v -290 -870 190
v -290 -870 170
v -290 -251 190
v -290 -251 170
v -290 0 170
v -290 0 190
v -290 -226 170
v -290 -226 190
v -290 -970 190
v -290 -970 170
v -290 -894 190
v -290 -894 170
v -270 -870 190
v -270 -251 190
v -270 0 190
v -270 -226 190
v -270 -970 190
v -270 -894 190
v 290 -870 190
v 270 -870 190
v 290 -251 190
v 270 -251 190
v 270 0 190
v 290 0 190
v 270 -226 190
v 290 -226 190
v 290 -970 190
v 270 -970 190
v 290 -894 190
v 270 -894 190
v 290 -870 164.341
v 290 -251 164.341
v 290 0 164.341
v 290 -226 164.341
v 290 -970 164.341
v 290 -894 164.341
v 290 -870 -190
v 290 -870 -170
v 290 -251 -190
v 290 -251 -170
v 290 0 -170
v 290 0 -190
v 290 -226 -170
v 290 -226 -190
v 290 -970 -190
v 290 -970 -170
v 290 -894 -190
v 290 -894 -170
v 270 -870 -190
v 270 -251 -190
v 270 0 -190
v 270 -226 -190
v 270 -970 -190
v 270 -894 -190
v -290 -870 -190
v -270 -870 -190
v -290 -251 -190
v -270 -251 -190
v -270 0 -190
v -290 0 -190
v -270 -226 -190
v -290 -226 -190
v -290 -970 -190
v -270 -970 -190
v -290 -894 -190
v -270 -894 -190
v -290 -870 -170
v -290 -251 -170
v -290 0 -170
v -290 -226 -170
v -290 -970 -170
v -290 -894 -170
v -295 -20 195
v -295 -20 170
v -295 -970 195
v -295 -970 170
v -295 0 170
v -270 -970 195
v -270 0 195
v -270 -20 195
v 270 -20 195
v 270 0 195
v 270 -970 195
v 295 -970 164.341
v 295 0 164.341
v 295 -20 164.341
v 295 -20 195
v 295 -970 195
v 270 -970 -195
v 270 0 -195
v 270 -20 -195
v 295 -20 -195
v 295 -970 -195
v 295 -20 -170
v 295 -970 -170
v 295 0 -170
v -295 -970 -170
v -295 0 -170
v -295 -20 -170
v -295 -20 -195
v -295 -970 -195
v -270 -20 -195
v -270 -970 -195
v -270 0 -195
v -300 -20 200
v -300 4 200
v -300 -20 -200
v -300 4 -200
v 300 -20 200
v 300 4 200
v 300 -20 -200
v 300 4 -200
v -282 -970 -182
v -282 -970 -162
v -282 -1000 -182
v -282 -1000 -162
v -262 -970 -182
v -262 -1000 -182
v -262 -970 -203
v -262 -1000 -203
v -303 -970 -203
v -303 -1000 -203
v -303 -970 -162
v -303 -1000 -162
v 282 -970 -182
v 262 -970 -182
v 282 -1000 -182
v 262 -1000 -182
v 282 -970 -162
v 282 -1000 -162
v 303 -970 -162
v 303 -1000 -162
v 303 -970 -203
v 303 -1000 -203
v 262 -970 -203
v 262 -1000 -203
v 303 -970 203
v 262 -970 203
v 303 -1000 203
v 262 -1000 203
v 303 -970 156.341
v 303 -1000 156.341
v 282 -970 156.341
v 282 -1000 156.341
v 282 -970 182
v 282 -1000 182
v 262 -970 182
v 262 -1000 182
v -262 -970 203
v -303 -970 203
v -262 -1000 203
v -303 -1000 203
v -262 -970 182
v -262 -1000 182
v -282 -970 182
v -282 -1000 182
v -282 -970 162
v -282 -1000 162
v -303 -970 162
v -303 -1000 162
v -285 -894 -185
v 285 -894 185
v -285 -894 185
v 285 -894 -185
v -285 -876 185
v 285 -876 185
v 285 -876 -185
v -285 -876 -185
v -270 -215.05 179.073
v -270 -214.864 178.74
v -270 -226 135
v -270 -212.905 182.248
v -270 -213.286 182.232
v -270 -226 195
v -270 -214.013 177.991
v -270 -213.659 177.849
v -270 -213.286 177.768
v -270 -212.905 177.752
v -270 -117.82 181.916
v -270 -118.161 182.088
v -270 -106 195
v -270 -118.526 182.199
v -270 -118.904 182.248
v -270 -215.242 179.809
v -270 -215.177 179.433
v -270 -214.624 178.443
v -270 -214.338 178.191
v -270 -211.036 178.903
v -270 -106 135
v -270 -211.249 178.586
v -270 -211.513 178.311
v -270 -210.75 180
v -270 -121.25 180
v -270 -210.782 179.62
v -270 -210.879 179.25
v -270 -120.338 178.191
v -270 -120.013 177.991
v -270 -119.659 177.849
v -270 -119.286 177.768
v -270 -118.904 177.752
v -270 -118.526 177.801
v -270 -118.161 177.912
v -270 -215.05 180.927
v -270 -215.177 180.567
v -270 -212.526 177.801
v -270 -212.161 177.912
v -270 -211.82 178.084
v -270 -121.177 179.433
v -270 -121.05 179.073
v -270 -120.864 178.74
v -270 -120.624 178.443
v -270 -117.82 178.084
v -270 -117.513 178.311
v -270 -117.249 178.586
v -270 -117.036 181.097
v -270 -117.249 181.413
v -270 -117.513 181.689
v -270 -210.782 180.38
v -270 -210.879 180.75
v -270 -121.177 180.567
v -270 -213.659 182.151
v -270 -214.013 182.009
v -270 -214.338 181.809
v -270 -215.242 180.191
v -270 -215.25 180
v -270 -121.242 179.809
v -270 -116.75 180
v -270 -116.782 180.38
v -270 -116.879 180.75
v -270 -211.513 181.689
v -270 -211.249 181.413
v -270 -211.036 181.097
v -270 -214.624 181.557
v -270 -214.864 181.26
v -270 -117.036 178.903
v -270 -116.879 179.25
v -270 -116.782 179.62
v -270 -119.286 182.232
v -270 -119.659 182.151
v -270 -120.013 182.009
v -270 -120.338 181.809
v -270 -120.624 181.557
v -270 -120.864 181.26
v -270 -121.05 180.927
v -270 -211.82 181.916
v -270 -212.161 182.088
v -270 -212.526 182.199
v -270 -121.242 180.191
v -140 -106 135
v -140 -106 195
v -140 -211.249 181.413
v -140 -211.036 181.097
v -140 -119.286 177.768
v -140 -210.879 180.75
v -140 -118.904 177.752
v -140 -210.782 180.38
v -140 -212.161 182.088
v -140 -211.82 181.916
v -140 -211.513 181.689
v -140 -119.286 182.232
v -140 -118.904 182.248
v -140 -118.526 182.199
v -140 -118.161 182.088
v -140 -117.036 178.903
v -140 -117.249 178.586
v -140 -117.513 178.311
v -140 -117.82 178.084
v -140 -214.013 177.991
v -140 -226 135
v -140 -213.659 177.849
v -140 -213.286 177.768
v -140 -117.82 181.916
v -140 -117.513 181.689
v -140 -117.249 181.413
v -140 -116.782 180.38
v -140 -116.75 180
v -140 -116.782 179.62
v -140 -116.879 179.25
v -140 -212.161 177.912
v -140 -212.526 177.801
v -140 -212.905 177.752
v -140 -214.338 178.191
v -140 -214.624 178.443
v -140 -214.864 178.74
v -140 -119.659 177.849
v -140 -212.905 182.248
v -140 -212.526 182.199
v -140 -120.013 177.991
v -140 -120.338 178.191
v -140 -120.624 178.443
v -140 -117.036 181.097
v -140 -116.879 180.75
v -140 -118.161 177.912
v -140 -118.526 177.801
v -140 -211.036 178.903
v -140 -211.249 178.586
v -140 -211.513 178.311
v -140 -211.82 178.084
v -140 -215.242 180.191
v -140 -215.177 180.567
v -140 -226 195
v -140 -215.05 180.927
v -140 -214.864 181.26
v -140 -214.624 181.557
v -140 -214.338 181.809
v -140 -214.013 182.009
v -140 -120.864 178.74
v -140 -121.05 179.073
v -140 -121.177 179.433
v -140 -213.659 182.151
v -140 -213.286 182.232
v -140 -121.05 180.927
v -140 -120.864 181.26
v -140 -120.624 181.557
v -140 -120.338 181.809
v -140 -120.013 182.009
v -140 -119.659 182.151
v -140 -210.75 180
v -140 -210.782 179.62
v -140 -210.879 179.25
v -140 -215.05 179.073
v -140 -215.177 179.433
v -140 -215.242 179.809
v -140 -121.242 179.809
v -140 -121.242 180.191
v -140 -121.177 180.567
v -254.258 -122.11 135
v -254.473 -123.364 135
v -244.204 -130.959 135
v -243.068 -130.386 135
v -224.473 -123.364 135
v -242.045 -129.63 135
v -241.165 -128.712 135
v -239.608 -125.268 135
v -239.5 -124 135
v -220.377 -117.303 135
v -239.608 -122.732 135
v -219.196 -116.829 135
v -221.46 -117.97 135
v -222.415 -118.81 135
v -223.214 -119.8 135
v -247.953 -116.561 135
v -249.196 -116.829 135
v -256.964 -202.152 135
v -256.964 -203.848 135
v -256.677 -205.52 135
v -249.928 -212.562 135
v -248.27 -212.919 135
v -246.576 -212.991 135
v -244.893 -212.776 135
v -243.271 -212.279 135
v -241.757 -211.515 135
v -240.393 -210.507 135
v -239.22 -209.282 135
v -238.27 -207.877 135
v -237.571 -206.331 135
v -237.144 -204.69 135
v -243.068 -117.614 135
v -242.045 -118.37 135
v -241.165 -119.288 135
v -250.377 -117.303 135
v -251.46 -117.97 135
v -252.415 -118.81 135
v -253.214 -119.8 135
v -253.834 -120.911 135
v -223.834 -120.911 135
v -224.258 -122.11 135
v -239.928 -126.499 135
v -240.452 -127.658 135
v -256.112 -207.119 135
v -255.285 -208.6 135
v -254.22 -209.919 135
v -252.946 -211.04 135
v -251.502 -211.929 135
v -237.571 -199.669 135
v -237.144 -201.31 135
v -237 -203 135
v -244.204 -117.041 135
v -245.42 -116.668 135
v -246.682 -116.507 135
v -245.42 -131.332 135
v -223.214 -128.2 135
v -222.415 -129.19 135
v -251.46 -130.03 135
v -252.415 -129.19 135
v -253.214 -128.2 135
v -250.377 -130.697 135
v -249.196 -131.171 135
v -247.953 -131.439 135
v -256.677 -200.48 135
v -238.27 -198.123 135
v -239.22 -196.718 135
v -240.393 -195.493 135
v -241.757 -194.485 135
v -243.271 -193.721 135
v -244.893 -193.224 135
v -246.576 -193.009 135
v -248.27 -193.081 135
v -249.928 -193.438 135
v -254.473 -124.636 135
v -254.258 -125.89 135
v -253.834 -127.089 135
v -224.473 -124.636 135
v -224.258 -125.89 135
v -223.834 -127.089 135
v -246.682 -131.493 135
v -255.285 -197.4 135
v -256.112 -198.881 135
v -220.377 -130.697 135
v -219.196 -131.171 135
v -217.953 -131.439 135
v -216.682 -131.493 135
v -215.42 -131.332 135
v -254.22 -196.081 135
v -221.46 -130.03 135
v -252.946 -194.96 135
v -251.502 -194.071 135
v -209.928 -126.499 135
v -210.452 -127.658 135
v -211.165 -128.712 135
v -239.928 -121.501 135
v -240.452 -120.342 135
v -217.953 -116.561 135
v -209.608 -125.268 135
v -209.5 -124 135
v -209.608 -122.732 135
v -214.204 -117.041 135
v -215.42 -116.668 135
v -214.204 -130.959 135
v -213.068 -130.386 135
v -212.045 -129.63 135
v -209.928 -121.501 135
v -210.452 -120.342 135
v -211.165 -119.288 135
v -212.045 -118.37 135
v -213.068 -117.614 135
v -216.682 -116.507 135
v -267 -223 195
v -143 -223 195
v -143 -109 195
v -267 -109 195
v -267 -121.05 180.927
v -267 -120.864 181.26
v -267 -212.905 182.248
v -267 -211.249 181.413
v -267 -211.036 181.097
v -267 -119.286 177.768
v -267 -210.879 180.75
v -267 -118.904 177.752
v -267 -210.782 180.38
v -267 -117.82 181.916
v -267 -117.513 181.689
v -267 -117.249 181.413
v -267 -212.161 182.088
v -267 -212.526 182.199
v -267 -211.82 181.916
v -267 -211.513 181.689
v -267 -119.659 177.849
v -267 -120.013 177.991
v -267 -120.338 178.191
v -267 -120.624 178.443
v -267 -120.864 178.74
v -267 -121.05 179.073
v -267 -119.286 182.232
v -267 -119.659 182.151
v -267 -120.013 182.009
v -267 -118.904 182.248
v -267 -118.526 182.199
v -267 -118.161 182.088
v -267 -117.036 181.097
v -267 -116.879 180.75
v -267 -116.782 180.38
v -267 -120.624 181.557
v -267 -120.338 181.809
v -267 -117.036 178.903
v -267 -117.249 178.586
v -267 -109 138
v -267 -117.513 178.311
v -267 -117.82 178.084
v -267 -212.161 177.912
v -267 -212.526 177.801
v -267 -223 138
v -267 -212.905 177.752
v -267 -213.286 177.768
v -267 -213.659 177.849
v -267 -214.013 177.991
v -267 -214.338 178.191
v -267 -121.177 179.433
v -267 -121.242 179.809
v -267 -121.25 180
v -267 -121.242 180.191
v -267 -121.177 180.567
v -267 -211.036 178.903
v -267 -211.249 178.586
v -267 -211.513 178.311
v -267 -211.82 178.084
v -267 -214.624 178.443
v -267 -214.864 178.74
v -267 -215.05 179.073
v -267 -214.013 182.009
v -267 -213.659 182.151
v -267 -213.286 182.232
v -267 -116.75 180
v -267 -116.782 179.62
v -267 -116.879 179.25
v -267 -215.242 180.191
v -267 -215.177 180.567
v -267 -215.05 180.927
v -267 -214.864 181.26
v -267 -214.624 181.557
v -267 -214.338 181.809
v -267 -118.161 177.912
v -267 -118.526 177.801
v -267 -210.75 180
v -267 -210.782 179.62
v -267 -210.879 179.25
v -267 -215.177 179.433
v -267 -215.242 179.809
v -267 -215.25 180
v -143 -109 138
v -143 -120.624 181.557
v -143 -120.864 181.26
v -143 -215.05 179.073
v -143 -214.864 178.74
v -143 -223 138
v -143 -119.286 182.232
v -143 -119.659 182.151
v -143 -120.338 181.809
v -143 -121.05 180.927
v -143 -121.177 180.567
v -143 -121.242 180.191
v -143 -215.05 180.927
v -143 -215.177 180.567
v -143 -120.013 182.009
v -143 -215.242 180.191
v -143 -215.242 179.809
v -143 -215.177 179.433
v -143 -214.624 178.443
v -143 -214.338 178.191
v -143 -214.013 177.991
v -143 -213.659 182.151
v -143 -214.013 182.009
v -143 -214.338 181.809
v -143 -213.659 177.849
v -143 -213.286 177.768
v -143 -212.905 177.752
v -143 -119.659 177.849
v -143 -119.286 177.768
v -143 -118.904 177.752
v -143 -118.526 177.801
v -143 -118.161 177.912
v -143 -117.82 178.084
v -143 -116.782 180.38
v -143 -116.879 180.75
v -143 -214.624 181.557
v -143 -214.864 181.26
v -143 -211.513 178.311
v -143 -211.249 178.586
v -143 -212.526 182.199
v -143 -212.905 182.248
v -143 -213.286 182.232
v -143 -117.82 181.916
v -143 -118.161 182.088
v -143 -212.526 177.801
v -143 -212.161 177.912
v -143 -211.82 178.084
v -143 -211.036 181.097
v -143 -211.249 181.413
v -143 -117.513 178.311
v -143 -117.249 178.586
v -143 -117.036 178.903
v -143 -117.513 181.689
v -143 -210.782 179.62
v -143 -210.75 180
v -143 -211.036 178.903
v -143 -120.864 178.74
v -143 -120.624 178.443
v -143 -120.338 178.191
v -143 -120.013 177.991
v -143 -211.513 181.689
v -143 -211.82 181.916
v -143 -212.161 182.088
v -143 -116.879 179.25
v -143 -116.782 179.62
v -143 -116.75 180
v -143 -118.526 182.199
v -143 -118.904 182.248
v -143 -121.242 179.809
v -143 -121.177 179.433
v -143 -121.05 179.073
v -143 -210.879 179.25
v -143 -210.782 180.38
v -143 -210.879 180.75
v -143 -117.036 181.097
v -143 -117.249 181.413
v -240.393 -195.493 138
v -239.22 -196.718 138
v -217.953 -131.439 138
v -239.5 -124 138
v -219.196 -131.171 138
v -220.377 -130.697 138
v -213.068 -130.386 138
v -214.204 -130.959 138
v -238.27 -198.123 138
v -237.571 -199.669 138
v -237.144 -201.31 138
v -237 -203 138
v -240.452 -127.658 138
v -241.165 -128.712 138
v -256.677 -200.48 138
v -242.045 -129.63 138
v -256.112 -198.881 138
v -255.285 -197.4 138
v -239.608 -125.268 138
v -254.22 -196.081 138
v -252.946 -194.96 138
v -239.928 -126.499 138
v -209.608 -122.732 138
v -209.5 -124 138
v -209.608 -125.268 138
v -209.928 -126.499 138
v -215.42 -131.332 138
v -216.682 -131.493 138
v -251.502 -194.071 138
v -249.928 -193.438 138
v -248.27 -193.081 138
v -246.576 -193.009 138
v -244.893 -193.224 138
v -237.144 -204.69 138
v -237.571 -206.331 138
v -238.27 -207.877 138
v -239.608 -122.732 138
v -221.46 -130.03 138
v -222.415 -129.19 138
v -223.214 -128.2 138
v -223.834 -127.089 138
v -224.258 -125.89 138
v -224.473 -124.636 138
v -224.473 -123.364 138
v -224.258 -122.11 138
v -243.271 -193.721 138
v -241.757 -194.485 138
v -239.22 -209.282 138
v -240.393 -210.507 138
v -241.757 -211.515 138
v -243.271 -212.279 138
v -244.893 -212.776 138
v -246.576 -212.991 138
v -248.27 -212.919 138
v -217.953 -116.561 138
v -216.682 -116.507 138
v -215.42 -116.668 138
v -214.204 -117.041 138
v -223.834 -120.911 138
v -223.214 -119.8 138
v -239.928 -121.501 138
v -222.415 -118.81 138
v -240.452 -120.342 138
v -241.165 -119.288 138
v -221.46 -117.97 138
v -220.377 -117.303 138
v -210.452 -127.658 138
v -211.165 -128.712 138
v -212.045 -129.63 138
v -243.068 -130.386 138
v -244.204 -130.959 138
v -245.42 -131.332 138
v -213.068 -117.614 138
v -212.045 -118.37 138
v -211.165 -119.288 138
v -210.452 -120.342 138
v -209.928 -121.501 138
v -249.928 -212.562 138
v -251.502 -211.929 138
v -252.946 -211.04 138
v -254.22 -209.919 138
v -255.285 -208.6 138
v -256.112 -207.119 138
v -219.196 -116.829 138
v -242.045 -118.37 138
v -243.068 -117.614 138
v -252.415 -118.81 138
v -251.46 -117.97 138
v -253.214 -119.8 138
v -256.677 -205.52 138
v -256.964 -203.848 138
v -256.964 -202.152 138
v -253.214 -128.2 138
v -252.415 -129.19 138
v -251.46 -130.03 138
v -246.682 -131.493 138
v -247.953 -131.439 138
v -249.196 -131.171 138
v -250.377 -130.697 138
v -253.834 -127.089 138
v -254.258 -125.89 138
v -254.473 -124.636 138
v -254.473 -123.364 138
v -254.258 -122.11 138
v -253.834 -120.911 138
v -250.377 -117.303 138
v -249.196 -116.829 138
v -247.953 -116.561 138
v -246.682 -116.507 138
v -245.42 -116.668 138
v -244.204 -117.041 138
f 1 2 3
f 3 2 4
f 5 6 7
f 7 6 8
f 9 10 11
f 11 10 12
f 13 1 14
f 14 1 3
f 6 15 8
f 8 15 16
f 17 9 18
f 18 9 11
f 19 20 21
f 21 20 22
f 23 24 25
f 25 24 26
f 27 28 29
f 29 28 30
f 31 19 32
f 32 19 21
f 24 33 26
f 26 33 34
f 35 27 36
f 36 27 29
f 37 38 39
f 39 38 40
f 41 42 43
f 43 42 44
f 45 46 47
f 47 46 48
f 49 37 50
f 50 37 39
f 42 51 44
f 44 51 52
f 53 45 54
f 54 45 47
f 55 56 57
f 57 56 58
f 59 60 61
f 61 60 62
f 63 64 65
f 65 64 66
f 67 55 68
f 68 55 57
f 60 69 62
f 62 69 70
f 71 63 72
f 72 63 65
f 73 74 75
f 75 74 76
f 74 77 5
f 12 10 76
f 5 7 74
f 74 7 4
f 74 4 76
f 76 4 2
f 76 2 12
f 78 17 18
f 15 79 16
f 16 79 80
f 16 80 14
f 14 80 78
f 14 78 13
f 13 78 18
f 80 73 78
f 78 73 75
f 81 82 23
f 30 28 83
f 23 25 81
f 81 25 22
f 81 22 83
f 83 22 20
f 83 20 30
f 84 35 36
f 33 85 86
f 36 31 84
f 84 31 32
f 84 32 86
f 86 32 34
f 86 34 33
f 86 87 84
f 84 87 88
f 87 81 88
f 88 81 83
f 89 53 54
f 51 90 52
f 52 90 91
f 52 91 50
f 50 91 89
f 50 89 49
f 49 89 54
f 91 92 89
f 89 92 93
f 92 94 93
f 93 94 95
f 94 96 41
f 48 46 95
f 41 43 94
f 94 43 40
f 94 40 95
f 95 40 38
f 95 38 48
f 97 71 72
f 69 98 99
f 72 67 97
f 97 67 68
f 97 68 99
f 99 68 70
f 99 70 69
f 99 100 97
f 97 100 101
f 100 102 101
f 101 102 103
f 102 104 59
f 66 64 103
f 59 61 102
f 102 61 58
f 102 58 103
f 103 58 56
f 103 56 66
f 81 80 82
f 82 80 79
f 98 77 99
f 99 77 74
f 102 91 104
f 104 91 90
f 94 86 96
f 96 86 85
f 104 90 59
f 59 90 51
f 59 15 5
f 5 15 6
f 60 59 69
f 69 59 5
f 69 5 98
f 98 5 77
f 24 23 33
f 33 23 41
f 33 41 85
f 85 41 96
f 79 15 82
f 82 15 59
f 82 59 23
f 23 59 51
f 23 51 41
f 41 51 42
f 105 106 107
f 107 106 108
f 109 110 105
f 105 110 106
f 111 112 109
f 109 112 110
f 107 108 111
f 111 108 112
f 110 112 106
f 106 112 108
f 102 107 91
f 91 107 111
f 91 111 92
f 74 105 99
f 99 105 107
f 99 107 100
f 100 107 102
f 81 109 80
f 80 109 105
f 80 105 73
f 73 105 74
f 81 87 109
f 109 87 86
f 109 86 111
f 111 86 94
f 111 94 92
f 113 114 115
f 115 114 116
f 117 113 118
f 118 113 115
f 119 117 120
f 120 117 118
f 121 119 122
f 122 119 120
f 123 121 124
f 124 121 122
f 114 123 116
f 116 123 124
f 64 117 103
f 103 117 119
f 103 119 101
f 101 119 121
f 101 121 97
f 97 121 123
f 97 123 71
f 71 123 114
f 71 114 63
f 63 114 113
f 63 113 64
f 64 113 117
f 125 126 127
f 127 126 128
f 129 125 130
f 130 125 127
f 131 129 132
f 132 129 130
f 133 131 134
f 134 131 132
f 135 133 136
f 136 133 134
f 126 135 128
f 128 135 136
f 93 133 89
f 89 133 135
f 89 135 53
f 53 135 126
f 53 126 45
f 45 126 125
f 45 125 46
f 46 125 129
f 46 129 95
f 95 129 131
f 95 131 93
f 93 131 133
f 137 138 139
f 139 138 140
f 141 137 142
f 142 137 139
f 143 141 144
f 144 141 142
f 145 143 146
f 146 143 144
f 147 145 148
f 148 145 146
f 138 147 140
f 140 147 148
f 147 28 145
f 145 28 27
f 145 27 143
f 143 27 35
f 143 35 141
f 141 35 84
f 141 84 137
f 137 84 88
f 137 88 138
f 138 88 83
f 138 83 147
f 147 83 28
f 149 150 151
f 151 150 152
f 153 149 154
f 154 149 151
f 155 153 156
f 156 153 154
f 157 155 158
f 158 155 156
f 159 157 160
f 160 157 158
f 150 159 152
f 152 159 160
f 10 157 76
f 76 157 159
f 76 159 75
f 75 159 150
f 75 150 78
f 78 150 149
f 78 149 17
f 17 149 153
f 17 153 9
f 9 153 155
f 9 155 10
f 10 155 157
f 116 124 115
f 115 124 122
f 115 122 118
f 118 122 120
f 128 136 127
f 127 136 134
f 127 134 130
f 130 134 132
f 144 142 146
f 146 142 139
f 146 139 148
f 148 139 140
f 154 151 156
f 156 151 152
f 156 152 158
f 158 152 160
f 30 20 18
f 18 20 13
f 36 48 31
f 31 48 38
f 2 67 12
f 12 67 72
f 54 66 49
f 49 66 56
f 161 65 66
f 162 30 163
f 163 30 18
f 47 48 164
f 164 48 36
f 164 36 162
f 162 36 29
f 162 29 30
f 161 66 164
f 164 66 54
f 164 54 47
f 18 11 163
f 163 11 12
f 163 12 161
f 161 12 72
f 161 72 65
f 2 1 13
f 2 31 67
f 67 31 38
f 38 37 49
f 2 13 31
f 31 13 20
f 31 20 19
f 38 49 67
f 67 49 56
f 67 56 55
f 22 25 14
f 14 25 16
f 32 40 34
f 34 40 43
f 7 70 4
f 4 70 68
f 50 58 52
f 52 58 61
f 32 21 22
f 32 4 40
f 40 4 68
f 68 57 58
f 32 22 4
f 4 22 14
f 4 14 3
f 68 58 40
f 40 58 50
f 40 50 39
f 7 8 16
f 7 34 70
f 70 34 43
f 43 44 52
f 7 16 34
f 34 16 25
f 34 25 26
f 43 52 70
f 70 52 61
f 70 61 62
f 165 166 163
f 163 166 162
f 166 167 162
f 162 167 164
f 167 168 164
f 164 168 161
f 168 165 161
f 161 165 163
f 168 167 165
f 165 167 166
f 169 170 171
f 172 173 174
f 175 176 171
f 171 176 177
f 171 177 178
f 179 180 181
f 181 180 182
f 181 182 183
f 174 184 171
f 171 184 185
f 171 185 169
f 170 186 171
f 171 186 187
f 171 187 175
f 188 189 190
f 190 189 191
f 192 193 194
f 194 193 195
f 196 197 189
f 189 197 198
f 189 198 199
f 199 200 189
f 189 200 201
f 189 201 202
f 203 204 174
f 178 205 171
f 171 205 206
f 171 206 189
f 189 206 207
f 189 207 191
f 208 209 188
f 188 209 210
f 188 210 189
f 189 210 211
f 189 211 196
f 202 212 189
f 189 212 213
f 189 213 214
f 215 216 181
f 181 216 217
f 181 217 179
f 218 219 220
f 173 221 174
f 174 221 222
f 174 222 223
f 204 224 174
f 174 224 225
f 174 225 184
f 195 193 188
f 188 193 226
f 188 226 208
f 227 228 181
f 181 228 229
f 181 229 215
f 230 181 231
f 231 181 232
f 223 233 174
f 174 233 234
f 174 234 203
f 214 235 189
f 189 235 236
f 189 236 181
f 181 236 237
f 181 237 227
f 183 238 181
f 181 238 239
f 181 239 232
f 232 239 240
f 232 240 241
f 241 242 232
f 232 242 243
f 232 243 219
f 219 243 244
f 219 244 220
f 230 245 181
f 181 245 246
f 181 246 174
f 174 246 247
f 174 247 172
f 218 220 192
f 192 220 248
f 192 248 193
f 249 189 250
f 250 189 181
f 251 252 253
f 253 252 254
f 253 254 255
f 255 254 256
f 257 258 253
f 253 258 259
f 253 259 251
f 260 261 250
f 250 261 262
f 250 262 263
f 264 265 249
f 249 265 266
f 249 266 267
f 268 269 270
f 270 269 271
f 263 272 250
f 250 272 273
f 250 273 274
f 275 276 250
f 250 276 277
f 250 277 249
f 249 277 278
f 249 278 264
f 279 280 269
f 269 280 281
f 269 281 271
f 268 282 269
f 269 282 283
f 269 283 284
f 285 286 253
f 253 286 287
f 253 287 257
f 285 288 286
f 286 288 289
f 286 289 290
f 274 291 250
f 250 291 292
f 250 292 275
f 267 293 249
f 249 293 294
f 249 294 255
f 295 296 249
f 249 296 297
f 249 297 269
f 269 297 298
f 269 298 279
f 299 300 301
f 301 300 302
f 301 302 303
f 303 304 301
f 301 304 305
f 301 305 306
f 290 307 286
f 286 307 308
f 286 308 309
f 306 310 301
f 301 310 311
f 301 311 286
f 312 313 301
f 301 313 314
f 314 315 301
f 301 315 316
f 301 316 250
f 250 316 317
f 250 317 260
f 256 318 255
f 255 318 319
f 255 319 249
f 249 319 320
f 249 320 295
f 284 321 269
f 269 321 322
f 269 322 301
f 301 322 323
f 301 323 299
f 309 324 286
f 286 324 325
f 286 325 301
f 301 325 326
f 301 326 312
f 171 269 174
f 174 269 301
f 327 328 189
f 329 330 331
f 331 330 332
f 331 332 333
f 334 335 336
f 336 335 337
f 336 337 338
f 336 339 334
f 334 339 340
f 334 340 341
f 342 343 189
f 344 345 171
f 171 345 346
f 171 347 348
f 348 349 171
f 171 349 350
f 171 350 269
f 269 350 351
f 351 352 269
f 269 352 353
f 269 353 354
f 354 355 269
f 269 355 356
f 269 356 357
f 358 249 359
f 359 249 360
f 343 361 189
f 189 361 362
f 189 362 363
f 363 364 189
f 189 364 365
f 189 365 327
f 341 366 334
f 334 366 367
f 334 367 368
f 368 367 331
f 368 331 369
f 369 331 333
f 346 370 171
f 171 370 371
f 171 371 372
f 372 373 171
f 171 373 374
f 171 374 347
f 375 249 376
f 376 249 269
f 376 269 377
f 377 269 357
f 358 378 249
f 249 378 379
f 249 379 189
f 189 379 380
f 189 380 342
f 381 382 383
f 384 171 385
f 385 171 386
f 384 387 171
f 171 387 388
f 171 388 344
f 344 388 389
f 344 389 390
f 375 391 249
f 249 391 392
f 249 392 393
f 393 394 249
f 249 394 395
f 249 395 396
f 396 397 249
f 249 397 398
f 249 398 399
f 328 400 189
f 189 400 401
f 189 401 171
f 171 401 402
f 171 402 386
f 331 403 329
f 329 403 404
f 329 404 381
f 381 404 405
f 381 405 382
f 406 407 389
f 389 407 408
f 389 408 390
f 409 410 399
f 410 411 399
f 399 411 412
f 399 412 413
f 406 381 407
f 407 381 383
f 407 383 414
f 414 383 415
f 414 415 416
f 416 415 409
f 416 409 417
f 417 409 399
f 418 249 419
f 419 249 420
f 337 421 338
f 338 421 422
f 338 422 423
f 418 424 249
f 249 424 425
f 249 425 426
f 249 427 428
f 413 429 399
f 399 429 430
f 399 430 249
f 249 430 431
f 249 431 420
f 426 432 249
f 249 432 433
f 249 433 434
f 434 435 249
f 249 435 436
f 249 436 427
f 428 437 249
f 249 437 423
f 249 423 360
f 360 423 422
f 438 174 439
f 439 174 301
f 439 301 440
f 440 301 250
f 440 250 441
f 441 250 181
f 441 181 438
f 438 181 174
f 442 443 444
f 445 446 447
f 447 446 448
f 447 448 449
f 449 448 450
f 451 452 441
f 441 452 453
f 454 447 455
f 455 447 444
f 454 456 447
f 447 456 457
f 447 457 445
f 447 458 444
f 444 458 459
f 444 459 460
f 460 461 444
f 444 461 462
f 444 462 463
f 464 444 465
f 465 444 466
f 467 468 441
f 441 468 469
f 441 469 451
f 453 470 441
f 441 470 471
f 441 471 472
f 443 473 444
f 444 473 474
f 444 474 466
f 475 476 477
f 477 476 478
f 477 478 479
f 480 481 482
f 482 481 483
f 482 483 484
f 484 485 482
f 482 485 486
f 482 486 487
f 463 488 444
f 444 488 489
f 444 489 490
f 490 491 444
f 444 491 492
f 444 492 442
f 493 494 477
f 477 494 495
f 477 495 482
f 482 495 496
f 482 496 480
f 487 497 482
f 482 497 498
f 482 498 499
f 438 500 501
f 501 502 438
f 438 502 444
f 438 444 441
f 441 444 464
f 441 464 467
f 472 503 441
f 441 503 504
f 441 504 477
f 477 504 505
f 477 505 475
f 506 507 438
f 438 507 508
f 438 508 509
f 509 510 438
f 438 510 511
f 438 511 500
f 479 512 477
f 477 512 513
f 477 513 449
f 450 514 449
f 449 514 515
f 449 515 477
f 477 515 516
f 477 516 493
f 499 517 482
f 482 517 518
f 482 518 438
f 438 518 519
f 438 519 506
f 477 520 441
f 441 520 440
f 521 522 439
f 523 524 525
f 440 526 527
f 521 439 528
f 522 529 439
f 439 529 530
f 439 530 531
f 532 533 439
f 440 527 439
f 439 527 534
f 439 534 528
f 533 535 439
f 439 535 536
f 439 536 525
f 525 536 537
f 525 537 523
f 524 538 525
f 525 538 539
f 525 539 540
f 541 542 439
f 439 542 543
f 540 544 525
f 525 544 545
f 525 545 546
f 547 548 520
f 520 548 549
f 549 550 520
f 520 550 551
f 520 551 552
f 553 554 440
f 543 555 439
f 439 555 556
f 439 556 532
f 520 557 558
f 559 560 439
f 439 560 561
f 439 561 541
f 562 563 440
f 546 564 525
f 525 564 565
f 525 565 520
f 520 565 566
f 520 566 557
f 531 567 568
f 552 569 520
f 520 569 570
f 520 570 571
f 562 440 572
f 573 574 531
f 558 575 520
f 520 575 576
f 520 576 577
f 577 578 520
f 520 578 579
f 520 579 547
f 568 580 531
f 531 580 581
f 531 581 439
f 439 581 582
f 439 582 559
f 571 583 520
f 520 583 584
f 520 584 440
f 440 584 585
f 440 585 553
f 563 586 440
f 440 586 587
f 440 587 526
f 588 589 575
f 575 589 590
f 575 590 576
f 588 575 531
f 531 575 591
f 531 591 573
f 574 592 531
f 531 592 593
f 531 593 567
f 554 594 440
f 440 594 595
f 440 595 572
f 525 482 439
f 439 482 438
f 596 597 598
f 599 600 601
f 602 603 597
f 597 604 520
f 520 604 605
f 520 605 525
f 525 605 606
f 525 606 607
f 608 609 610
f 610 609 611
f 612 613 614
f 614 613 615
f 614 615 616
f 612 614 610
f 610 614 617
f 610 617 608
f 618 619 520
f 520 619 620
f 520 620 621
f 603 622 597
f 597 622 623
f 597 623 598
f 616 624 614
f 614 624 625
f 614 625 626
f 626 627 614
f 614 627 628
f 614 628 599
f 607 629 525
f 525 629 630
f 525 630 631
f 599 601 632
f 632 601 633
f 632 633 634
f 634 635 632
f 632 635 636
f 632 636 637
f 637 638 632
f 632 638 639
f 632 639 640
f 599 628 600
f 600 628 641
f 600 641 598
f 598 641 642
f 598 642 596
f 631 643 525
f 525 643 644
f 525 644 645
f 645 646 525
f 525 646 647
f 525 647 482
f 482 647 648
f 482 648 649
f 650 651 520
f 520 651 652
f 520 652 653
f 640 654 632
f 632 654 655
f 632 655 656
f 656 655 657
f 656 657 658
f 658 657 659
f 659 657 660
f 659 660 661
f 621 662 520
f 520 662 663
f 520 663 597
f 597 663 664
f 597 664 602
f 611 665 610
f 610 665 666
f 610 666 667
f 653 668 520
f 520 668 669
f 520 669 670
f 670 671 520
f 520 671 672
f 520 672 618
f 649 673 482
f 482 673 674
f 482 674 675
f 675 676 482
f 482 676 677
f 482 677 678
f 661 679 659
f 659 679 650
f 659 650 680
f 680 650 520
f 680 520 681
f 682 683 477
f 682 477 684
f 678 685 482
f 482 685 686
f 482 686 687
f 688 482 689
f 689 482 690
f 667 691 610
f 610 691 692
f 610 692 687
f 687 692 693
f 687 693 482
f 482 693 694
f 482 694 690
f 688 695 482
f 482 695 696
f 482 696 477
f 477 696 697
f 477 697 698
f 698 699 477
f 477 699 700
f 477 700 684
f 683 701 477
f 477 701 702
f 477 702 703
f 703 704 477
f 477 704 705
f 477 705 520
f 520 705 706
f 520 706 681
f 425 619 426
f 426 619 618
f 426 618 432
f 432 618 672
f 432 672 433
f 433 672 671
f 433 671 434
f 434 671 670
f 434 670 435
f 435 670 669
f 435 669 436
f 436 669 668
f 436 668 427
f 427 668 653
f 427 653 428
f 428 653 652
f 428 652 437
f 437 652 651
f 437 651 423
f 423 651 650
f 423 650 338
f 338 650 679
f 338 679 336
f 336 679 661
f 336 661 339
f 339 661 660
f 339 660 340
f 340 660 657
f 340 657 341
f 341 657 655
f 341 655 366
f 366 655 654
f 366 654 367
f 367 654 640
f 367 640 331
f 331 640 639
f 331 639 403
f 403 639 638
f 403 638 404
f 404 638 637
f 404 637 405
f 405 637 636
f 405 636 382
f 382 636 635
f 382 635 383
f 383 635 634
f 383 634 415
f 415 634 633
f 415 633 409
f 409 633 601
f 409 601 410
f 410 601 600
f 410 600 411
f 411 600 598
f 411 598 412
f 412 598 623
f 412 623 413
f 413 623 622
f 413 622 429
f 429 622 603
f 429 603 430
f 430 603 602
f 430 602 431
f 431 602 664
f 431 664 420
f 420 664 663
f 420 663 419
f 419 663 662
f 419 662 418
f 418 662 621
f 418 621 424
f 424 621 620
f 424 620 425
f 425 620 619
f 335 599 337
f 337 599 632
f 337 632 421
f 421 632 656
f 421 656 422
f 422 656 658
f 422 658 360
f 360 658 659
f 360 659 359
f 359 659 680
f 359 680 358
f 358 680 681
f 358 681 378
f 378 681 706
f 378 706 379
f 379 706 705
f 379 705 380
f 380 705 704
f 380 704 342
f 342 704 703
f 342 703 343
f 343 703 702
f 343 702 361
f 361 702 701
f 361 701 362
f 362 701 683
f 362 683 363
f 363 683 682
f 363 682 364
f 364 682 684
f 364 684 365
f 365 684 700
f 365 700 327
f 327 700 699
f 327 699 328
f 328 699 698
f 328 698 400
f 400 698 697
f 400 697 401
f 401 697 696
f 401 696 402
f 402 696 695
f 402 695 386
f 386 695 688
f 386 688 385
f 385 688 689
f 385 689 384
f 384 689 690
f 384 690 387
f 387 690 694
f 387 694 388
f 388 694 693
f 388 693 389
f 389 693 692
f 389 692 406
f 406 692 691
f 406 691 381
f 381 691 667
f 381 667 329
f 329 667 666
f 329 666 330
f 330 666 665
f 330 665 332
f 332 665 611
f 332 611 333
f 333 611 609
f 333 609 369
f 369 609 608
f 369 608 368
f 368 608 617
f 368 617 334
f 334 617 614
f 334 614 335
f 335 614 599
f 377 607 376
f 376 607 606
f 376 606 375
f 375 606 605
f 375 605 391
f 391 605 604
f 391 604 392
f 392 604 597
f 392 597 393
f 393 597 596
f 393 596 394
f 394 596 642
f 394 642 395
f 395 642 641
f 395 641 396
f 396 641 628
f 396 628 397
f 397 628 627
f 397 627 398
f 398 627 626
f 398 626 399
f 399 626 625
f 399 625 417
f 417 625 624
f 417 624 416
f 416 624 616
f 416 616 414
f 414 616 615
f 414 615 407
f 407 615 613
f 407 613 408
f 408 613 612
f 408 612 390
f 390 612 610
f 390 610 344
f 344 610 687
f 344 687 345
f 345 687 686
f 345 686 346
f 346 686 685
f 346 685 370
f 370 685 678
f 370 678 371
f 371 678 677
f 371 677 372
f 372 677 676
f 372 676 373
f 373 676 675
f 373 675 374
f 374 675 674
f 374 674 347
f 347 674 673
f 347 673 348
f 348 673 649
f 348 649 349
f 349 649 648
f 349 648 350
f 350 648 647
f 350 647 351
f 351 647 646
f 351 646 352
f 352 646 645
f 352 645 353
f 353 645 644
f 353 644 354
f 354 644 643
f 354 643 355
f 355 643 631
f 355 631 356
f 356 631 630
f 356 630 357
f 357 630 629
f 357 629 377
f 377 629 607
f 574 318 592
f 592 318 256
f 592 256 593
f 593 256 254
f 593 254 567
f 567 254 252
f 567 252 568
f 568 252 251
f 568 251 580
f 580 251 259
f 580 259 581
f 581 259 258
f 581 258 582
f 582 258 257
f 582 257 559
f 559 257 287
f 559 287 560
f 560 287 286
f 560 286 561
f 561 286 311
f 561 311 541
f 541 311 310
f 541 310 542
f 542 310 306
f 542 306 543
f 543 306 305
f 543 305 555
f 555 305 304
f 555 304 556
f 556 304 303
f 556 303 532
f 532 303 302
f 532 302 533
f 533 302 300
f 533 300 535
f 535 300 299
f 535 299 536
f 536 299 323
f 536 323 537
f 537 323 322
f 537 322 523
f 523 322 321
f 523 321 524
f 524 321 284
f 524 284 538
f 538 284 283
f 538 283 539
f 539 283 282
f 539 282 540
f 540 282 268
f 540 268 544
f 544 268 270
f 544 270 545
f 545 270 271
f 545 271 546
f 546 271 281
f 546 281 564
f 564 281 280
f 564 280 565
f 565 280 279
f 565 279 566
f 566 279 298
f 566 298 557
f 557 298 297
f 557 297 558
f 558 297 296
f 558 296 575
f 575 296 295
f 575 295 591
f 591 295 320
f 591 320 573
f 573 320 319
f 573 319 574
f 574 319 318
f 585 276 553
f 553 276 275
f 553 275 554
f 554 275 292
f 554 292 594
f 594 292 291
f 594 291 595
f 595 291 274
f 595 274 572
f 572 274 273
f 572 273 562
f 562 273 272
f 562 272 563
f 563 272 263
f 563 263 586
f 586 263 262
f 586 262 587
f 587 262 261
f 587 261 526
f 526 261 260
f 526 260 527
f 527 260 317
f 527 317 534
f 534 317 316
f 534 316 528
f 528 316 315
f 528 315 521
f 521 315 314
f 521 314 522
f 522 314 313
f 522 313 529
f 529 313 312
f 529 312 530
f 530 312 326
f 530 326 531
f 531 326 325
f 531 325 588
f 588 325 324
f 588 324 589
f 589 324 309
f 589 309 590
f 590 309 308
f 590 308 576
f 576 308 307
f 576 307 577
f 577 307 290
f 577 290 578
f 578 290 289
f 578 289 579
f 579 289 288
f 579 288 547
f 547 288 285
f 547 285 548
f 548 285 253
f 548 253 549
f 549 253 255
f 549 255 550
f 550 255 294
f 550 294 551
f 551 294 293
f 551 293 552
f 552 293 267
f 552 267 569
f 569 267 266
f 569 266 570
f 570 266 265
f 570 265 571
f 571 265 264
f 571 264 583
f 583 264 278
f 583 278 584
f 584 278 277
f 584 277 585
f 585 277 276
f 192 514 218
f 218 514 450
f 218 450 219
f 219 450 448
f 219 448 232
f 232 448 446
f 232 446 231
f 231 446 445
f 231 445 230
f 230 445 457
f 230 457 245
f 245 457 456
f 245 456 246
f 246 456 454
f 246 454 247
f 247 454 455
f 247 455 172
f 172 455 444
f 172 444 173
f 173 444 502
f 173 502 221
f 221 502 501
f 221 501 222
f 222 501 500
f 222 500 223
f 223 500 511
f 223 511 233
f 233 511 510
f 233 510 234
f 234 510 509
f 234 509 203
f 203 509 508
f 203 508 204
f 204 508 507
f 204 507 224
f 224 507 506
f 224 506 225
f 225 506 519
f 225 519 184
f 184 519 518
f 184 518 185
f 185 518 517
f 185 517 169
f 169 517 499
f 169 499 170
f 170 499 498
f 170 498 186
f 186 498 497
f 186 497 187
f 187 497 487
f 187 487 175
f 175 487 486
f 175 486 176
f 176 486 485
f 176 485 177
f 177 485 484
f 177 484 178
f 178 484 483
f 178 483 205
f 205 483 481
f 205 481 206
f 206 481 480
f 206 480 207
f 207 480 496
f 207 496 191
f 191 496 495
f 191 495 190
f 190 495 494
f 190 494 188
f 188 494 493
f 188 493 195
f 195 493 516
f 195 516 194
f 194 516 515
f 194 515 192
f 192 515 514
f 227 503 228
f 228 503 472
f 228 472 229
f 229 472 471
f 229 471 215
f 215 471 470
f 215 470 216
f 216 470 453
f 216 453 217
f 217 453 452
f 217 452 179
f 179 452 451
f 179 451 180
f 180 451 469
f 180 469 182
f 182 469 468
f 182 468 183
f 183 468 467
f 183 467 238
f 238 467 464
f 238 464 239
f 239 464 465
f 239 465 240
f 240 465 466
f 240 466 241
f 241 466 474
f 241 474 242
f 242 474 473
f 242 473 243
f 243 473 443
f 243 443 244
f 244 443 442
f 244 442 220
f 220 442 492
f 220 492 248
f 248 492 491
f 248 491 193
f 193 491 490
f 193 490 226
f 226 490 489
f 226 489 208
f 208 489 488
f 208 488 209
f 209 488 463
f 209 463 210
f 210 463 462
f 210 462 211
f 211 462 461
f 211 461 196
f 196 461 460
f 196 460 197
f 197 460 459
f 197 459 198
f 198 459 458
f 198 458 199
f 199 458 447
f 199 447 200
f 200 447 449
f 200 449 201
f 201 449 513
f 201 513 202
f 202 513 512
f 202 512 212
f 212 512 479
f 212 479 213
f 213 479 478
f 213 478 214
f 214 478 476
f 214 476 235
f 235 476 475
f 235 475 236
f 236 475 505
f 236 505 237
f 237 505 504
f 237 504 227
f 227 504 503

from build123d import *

# Parameters (mm, degrees)
CROQUIS1_W                       = 600
CROQUIS1_H                       = 400
SALIENTE_EXTRUIR1_DEPTH          = 4
CROQUIS2_W                       = 600
CROQUIS2_H                       = 400
CROQUIS2_W_2                     = 590
CROQUIS2_H_2                     = 390
SALIENTE_EXTRUIR2_DEPTH          = 20
SALIENTE_EXTRUIR3_DEPTH          = 1000
SALIENTE_EXTRUIR4_DEPTH          = 30
CROQUIS5_W                       = 580
CROQUIS5_H                       = 25
CROQUIS5_H_2                     = 24
SALIENTE_EXTRUIR5_DEPTH          = 380
CORTAR_EXTRUIR2_DEPTH            = 18
CROQUIS8_W                       = 130
CROQUIS8_H                       = 120
SALIENTE_EXTRUIR6_DEPTH          = 60
VACIADO1_T                       = -3
S_LIDO_MOVER_COPIAR1_START       = -282.5
S_LIDO_MOVER_COPIAR1_OUTLINE_W   = 120
S_LIDO_MOVER_COPIAR1_OUTLINE_H   = 60
S_LIDO_MOVER_COPIAR1_DEPTH       = 12.5
S_LIDO_MOVER_COPIAR1_START_2     = -155.5
S_LIDO_MOVER_COPIAR1_2_OUTLINE_W = 114
S_LIDO_MOVER_COPIAR1_2_OUTLINE_H = 57
S_LIDO_MOVER_COPIAR1_2_DEPTH     = 3
S_LIDO_MOVER_COPIAR1_START_3     = -143
S_LIDO_MOVER_COPIAR1_3_OUTLINE_W = 120
S_LIDO_MOVER_COPIAR1_3_OUTLINE_H = 60
S_LIDO_MOVER_COPIAR1_3_DEPTH     = 3
S_LIDO_MOVER_COPIAR1_START_4     = -270
S_LIDO_MOVER_COPIAR1_4_OUTLINE_W = 114
S_LIDO_MOVER_COPIAR1_4_OUTLINE_H = 57
S_LIDO_MOVER_COPIAR1_4_DEPTH     = 3
S_LIDO_MOVER_COPIAR1_START_5     = -152.5
S_LIDO_MOVER_COPIAR1_5_DEPTH     = 9.5
CROQUIS11_R                      = 10
CROQUIS11_R_2                    = 7.5
CORTAR_EXTRUIR3_DEPTH            = 10
CROQUIS12_R                      = 2.25
CORTAR_EXTRUIR4_DEPTH            = 190


# Read off the part's stored shape, not the designer's step: Sólido-Mover/Copiar1
with BuildPart() as part:
    # Croquis1 → Saliente-Extruir1 (new body)
    with BuildSketch(Plane(origin=(0, 0, 0), x_dir=(1, 0, 0), z_dir=(0, 1, 0))):
        Rectangle(CROQUIS1_W, CROQUIS1_H)
    extrude(amount=SALIENTE_EXTRUIR1_DEPTH)

    # Croquis2 → Saliente-Extruir2 (add)
    with BuildSketch(Plane.XZ):
        Rectangle(CROQUIS2_W, CROQUIS2_H)
        Rectangle(CROQUIS2_W_2, CROQUIS2_H_2, mode=Mode.SUBTRACT)
    extrude(amount=SALIENTE_EXTRUIR2_DEPTH)

    # Croquis3 → Saliente-Extruir3 (add)
    with BuildSketch(Plane.XZ):
        Polygon((-270, 190), (-290, 190), (-290, 170), (-295, 170), (-295, 195), (-270, 195), align=None)
        Polygon((270, 195), (295, 195), (295, 164.340926839), (290, 164.340926839), (290, 190), (270, 190), align=None)
        Polygon((270, -195), (295, -195), (295, -170), (290, -170), (290, -190), (270, -190), align=None)
        Polygon((-295, -170), (-295, -195), (-270, -195), (-270, -190), (-290, -190), (-290, -170), align=None)
    extrude(amount=SALIENTE_EXTRUIR3_DEPTH)

    # Croquis4 → Saliente-Extruir4 (add)
    # profile 1 of 4: a face of its own
    with BuildSketch(Plane.XZ.offset(1000)):
        Polygon((-303, 203), (-303, 162), (-282, 162), (-282, 182), (-262, 182), (-262, 203), align=None)
        Polygon((-295, 195), (-295, 170), (-290, 170), (-290, 190), (-270, 190), (-270, 195), align=None, mode=Mode.SUBTRACT)
    # profile 2 of 4: a face of its own
    with BuildSketch(Plane.XZ.offset(1000)):
        Polygon((-282, -162), (-303, -162), (-303, -203), (-262, -203), (-262, -182), (-282, -182), align=None)
        Polygon((-290, -170), (-295, -170), (-295, -195), (-270, -195), (-270, -190), (-290, -190), align=None, mode=Mode.SUBTRACT)
    # profile 3 of 4: a face of its own
    with BuildSketch(Plane.XZ.offset(1000)):
        Polygon((262, 203), (262, 182), (282, 182), (282, 156.340926839), (303, 156.340926839), (303, 203), align=None)
        Polygon((270, 195), (270, 190), (290, 190), (290, 164.340926839), (295, 164.340926839), (295, 195), align=None, mode=Mode.SUBTRACT)
    # profile 4 of 4: a face of its own
    with BuildSketch(Plane.XZ.offset(1000)):
        Polygon((262, -182), (262, -203), (303, -203), (303, -162), (282, -162), (282, -182), align=None)
        Polygon((270, -190), (270, -195), (295, -195), (295, -170), (290, -170), (290, -190), align=None, mode=Mode.SUBTRACT)
    extrude(amount=-SALIENTE_EXTRUIR4_DEPTH)

    # Croquis5 → Saliente-Extruir5 (add)
    with BuildSketch(Plane.XY.offset(-190)):
        with Locations((0, -238.5)):
            Rectangle(CROQUIS5_W, CROQUIS5_H)
        with Locations((0, -882)):
            Rectangle(CROQUIS5_W, CROQUIS5_H_2)
    extrude(amount=SALIENTE_EXTRUIR5_DEPTH)

    # Croquis7 → Cortar-Extruir2 (cut)
    with BuildSketch(Plane.XZ.offset(894)):
        Polygon((-270, 185), (-285, 185), (-285, 170), (-285, -170), (-285, -185), (-270, -185), (270, -185), (285, -185), (285, -170), (285, 164.340926839), (285, 185), (270, 185), align=None)
    extrude(amount=-CORTAR_EXTRUIR2_DEPTH, mode=Mode.SUBTRACT)


with BuildPart() as body_2:
    # Croquis8 → Saliente-Extruir6 (new body)
    with BuildSketch(Plane.XY.offset(195)):
        with Locations((-217.5, -166)):
            Rectangle(CROQUIS8_W, CROQUIS8_H)
    extrude(amount=-SALIENTE_EXTRUIR6_DEPTH)

    # Vaciado1
    vaciado1_openings = [body_2.faces().sort_by_distance(p)[0] for p in [
        (-217.5, -166, 195),
    ]]
    offset(amount=VACIADO1_T, openings=vaciado1_openings, kind=Kind.INTERSECTION)

    # Sólido-Mover/Copiar1 outline → Sólido-Mover/Copiar1 (cut)
    with BuildSketch(Plane.YZ.offset(S_LIDO_MOVER_COPIAR1_START)):
        with Locations((-166, 165)):
            Rectangle(S_LIDO_MOVER_COPIAR1_OUTLINE_W, S_LIDO_MOVER_COPIAR1_OUTLINE_H)
    extrude(amount=S_LIDO_MOVER_COPIAR1_DEPTH, mode=Mode.SUBTRACT)

    # S_lido-Mover_Copiar1 2 outline → S_lido-Mover_Copiar1 2 (cut)
    with BuildSketch(Plane.YZ.offset(S_LIDO_MOVER_COPIAR1_START_2)):
        with Locations((-166, 166.5)):
            Rectangle(S_LIDO_MOVER_COPIAR1_2_OUTLINE_W, S_LIDO_MOVER_COPIAR1_2_OUTLINE_H)
    extrude(amount=S_LIDO_MOVER_COPIAR1_2_DEPTH, mode=Mode.SUBTRACT)

    # S_lido-Mover_Copiar1 3 outline → S_lido-Mover_Copiar1 3 (add)
    with BuildSketch(Plane.YZ.offset(S_LIDO_MOVER_COPIAR1_START_3)):
        with Locations((-166, 165)):
            Rectangle(S_LIDO_MOVER_COPIAR1_3_OUTLINE_W, S_LIDO_MOVER_COPIAR1_3_OUTLINE_H)
    extrude(amount=S_LIDO_MOVER_COPIAR1_3_DEPTH)

    # S_lido-Mover_Copiar1 4 outline → S_lido-Mover_Copiar1 4 (add)
    with BuildSketch(Plane.YZ.offset(S_LIDO_MOVER_COPIAR1_START_4)):
        with Locations((-166, 166.5)):
            Rectangle(S_LIDO_MOVER_COPIAR1_4_OUTLINE_W, S_LIDO_MOVER_COPIAR1_4_OUTLINE_H)
    extrude(amount=S_LIDO_MOVER_COPIAR1_4_DEPTH)

    # S_lido-Mover_Copiar1 5 outline → S_lido-Mover_Copiar1 5 (add)
    with BuildSketch(Plane.YZ.offset(S_LIDO_MOVER_COPIAR1_START_5)):
        Polygon((-106, 135), (-106, 195), (-109, 195), (-109, 138), (-223, 138), (-223, 195), (-226, 195), (-226, 135), align=None)
    extrude(amount=S_LIDO_MOVER_COPIAR1_5_DEPTH)

    # Croquis11 → Cortar-Extruir3 (cut)
    with BuildSketch(Plane.XY.offset(138)):
        with Locations((-247, -203)):
            Circle(CROQUIS11_R)
        with Locations((-247, -124)):
            Circle(CROQUIS11_R_2)
        with Locations((-217, -124)):
            Circle(CROQUIS11_R_2)
    extrude(amount=-CORTAR_EXTRUIR3_DEPTH, mode=Mode.SUBTRACT)

    # Croquis12 → Cortar-Extruir4 (cut)
    with BuildSketch(Plane(origin=(-140, 0, 0), x_dir=(0, 0, -1), z_dir=(1, 0, 0))):
        with Locations(Location((-180, -119, 0), (0, 0, 90))):
            Circle(CROQUIS12_R)
        with Locations(Location((-180, -213, 0), (0, 0, 90))):
            Circle(CROQUIS12_R)
    extrude(amount=-CORTAR_EXTRUIR4_DEPTH, mode=Mode.SUBTRACT)


solid = Compound([part.part, body_2.part])
